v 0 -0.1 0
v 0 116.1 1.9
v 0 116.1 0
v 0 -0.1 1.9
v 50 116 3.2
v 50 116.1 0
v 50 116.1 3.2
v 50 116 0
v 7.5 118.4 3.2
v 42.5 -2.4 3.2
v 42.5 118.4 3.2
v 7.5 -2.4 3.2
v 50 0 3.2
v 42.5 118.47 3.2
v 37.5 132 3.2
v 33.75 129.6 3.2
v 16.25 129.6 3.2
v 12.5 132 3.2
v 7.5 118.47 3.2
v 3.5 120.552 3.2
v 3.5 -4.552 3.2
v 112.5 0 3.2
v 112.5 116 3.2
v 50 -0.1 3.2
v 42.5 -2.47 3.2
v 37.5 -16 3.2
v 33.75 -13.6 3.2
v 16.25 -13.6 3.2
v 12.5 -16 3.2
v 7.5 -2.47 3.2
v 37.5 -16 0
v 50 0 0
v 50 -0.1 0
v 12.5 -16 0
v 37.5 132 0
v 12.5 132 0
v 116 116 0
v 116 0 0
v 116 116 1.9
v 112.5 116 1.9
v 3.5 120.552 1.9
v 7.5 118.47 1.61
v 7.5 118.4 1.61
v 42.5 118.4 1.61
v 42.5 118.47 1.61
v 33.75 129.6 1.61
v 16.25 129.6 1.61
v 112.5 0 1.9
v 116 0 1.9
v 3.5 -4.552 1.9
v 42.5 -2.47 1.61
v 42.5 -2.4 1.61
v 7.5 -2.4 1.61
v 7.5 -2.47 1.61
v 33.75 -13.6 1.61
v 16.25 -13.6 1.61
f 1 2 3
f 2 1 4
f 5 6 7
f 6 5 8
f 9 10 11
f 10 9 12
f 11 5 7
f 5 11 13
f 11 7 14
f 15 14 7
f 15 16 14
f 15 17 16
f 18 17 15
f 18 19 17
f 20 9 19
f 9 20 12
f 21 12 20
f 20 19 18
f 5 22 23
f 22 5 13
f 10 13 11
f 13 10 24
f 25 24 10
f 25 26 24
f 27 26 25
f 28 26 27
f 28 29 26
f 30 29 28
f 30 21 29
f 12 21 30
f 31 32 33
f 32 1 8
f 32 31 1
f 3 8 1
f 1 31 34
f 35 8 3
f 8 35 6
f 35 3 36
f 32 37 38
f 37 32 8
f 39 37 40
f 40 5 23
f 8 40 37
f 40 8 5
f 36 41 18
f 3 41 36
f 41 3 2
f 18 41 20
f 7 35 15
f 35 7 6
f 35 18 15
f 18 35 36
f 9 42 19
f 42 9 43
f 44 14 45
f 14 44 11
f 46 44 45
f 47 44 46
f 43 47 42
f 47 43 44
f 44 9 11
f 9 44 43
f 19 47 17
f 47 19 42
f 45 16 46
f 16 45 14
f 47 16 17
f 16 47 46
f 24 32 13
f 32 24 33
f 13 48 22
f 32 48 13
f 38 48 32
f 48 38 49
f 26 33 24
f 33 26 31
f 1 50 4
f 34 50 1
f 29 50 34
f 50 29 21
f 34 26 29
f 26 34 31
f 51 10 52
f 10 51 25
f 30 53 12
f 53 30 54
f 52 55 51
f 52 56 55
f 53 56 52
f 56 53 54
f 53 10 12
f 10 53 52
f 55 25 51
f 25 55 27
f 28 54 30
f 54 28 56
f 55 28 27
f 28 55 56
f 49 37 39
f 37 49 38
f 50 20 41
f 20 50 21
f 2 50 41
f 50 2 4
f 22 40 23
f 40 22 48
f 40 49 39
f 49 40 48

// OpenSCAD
Frame_Width = 116;
Frame_Height = 116;
Frame_Thickness = 3.2;

Rail_Thickness = 1.9;
Rail_Width = 3.5;

Grip_Top_Width = 25;
Grip_Bottom_Width = 50;
Grip_Height = 16;

f = 0.01;
df = 2 * f;

module plate() {
    difference() {
        union() {
            cube([Frame_Width, Frame_Height, Frame_Thickness]);
            translate([0, Frame_Height, 0])
                grip();
            translate([Grip_Bottom_Width, 0, 0])
                rotate([0, 0, 180])
                    grip();
        }
        translate([-f, -Grip_Height - f, Rail_Thickness])
            cube([Rail_Width + f, Frame_Height + 2 * Grip_Height + 2*f, Frame_Thickness - Rail_Thickness + f]);
        translate([Frame_Width - Rail_Width, -f, Rail_Thickness])
            cube([Rail_Width + f, Frame_Height + 2*f, Frame_Thickness - Rail_Thickness + f]);
    }
}

module grip_part() {
    hull() {
        cube([Grip_Bottom_Width, 0.1, Frame_Thickness]);
        translate([(Grip_Bottom_Width - Grip_Top_Width)/2, Grip_Height - 0.1, 0])
            cube([Grip_Top_Width, 0.1, Frame_Thickness]);
    }
}

module grip() {
    difference() {
        grip_part();
        translate([Grip_Bottom_Width * 0.15, Grip_Height * 0.15, Frame_Thickness/2 + f])
            scale([0.7, 0.7, 0.5])
                grip_part();
    }
}

plate();
